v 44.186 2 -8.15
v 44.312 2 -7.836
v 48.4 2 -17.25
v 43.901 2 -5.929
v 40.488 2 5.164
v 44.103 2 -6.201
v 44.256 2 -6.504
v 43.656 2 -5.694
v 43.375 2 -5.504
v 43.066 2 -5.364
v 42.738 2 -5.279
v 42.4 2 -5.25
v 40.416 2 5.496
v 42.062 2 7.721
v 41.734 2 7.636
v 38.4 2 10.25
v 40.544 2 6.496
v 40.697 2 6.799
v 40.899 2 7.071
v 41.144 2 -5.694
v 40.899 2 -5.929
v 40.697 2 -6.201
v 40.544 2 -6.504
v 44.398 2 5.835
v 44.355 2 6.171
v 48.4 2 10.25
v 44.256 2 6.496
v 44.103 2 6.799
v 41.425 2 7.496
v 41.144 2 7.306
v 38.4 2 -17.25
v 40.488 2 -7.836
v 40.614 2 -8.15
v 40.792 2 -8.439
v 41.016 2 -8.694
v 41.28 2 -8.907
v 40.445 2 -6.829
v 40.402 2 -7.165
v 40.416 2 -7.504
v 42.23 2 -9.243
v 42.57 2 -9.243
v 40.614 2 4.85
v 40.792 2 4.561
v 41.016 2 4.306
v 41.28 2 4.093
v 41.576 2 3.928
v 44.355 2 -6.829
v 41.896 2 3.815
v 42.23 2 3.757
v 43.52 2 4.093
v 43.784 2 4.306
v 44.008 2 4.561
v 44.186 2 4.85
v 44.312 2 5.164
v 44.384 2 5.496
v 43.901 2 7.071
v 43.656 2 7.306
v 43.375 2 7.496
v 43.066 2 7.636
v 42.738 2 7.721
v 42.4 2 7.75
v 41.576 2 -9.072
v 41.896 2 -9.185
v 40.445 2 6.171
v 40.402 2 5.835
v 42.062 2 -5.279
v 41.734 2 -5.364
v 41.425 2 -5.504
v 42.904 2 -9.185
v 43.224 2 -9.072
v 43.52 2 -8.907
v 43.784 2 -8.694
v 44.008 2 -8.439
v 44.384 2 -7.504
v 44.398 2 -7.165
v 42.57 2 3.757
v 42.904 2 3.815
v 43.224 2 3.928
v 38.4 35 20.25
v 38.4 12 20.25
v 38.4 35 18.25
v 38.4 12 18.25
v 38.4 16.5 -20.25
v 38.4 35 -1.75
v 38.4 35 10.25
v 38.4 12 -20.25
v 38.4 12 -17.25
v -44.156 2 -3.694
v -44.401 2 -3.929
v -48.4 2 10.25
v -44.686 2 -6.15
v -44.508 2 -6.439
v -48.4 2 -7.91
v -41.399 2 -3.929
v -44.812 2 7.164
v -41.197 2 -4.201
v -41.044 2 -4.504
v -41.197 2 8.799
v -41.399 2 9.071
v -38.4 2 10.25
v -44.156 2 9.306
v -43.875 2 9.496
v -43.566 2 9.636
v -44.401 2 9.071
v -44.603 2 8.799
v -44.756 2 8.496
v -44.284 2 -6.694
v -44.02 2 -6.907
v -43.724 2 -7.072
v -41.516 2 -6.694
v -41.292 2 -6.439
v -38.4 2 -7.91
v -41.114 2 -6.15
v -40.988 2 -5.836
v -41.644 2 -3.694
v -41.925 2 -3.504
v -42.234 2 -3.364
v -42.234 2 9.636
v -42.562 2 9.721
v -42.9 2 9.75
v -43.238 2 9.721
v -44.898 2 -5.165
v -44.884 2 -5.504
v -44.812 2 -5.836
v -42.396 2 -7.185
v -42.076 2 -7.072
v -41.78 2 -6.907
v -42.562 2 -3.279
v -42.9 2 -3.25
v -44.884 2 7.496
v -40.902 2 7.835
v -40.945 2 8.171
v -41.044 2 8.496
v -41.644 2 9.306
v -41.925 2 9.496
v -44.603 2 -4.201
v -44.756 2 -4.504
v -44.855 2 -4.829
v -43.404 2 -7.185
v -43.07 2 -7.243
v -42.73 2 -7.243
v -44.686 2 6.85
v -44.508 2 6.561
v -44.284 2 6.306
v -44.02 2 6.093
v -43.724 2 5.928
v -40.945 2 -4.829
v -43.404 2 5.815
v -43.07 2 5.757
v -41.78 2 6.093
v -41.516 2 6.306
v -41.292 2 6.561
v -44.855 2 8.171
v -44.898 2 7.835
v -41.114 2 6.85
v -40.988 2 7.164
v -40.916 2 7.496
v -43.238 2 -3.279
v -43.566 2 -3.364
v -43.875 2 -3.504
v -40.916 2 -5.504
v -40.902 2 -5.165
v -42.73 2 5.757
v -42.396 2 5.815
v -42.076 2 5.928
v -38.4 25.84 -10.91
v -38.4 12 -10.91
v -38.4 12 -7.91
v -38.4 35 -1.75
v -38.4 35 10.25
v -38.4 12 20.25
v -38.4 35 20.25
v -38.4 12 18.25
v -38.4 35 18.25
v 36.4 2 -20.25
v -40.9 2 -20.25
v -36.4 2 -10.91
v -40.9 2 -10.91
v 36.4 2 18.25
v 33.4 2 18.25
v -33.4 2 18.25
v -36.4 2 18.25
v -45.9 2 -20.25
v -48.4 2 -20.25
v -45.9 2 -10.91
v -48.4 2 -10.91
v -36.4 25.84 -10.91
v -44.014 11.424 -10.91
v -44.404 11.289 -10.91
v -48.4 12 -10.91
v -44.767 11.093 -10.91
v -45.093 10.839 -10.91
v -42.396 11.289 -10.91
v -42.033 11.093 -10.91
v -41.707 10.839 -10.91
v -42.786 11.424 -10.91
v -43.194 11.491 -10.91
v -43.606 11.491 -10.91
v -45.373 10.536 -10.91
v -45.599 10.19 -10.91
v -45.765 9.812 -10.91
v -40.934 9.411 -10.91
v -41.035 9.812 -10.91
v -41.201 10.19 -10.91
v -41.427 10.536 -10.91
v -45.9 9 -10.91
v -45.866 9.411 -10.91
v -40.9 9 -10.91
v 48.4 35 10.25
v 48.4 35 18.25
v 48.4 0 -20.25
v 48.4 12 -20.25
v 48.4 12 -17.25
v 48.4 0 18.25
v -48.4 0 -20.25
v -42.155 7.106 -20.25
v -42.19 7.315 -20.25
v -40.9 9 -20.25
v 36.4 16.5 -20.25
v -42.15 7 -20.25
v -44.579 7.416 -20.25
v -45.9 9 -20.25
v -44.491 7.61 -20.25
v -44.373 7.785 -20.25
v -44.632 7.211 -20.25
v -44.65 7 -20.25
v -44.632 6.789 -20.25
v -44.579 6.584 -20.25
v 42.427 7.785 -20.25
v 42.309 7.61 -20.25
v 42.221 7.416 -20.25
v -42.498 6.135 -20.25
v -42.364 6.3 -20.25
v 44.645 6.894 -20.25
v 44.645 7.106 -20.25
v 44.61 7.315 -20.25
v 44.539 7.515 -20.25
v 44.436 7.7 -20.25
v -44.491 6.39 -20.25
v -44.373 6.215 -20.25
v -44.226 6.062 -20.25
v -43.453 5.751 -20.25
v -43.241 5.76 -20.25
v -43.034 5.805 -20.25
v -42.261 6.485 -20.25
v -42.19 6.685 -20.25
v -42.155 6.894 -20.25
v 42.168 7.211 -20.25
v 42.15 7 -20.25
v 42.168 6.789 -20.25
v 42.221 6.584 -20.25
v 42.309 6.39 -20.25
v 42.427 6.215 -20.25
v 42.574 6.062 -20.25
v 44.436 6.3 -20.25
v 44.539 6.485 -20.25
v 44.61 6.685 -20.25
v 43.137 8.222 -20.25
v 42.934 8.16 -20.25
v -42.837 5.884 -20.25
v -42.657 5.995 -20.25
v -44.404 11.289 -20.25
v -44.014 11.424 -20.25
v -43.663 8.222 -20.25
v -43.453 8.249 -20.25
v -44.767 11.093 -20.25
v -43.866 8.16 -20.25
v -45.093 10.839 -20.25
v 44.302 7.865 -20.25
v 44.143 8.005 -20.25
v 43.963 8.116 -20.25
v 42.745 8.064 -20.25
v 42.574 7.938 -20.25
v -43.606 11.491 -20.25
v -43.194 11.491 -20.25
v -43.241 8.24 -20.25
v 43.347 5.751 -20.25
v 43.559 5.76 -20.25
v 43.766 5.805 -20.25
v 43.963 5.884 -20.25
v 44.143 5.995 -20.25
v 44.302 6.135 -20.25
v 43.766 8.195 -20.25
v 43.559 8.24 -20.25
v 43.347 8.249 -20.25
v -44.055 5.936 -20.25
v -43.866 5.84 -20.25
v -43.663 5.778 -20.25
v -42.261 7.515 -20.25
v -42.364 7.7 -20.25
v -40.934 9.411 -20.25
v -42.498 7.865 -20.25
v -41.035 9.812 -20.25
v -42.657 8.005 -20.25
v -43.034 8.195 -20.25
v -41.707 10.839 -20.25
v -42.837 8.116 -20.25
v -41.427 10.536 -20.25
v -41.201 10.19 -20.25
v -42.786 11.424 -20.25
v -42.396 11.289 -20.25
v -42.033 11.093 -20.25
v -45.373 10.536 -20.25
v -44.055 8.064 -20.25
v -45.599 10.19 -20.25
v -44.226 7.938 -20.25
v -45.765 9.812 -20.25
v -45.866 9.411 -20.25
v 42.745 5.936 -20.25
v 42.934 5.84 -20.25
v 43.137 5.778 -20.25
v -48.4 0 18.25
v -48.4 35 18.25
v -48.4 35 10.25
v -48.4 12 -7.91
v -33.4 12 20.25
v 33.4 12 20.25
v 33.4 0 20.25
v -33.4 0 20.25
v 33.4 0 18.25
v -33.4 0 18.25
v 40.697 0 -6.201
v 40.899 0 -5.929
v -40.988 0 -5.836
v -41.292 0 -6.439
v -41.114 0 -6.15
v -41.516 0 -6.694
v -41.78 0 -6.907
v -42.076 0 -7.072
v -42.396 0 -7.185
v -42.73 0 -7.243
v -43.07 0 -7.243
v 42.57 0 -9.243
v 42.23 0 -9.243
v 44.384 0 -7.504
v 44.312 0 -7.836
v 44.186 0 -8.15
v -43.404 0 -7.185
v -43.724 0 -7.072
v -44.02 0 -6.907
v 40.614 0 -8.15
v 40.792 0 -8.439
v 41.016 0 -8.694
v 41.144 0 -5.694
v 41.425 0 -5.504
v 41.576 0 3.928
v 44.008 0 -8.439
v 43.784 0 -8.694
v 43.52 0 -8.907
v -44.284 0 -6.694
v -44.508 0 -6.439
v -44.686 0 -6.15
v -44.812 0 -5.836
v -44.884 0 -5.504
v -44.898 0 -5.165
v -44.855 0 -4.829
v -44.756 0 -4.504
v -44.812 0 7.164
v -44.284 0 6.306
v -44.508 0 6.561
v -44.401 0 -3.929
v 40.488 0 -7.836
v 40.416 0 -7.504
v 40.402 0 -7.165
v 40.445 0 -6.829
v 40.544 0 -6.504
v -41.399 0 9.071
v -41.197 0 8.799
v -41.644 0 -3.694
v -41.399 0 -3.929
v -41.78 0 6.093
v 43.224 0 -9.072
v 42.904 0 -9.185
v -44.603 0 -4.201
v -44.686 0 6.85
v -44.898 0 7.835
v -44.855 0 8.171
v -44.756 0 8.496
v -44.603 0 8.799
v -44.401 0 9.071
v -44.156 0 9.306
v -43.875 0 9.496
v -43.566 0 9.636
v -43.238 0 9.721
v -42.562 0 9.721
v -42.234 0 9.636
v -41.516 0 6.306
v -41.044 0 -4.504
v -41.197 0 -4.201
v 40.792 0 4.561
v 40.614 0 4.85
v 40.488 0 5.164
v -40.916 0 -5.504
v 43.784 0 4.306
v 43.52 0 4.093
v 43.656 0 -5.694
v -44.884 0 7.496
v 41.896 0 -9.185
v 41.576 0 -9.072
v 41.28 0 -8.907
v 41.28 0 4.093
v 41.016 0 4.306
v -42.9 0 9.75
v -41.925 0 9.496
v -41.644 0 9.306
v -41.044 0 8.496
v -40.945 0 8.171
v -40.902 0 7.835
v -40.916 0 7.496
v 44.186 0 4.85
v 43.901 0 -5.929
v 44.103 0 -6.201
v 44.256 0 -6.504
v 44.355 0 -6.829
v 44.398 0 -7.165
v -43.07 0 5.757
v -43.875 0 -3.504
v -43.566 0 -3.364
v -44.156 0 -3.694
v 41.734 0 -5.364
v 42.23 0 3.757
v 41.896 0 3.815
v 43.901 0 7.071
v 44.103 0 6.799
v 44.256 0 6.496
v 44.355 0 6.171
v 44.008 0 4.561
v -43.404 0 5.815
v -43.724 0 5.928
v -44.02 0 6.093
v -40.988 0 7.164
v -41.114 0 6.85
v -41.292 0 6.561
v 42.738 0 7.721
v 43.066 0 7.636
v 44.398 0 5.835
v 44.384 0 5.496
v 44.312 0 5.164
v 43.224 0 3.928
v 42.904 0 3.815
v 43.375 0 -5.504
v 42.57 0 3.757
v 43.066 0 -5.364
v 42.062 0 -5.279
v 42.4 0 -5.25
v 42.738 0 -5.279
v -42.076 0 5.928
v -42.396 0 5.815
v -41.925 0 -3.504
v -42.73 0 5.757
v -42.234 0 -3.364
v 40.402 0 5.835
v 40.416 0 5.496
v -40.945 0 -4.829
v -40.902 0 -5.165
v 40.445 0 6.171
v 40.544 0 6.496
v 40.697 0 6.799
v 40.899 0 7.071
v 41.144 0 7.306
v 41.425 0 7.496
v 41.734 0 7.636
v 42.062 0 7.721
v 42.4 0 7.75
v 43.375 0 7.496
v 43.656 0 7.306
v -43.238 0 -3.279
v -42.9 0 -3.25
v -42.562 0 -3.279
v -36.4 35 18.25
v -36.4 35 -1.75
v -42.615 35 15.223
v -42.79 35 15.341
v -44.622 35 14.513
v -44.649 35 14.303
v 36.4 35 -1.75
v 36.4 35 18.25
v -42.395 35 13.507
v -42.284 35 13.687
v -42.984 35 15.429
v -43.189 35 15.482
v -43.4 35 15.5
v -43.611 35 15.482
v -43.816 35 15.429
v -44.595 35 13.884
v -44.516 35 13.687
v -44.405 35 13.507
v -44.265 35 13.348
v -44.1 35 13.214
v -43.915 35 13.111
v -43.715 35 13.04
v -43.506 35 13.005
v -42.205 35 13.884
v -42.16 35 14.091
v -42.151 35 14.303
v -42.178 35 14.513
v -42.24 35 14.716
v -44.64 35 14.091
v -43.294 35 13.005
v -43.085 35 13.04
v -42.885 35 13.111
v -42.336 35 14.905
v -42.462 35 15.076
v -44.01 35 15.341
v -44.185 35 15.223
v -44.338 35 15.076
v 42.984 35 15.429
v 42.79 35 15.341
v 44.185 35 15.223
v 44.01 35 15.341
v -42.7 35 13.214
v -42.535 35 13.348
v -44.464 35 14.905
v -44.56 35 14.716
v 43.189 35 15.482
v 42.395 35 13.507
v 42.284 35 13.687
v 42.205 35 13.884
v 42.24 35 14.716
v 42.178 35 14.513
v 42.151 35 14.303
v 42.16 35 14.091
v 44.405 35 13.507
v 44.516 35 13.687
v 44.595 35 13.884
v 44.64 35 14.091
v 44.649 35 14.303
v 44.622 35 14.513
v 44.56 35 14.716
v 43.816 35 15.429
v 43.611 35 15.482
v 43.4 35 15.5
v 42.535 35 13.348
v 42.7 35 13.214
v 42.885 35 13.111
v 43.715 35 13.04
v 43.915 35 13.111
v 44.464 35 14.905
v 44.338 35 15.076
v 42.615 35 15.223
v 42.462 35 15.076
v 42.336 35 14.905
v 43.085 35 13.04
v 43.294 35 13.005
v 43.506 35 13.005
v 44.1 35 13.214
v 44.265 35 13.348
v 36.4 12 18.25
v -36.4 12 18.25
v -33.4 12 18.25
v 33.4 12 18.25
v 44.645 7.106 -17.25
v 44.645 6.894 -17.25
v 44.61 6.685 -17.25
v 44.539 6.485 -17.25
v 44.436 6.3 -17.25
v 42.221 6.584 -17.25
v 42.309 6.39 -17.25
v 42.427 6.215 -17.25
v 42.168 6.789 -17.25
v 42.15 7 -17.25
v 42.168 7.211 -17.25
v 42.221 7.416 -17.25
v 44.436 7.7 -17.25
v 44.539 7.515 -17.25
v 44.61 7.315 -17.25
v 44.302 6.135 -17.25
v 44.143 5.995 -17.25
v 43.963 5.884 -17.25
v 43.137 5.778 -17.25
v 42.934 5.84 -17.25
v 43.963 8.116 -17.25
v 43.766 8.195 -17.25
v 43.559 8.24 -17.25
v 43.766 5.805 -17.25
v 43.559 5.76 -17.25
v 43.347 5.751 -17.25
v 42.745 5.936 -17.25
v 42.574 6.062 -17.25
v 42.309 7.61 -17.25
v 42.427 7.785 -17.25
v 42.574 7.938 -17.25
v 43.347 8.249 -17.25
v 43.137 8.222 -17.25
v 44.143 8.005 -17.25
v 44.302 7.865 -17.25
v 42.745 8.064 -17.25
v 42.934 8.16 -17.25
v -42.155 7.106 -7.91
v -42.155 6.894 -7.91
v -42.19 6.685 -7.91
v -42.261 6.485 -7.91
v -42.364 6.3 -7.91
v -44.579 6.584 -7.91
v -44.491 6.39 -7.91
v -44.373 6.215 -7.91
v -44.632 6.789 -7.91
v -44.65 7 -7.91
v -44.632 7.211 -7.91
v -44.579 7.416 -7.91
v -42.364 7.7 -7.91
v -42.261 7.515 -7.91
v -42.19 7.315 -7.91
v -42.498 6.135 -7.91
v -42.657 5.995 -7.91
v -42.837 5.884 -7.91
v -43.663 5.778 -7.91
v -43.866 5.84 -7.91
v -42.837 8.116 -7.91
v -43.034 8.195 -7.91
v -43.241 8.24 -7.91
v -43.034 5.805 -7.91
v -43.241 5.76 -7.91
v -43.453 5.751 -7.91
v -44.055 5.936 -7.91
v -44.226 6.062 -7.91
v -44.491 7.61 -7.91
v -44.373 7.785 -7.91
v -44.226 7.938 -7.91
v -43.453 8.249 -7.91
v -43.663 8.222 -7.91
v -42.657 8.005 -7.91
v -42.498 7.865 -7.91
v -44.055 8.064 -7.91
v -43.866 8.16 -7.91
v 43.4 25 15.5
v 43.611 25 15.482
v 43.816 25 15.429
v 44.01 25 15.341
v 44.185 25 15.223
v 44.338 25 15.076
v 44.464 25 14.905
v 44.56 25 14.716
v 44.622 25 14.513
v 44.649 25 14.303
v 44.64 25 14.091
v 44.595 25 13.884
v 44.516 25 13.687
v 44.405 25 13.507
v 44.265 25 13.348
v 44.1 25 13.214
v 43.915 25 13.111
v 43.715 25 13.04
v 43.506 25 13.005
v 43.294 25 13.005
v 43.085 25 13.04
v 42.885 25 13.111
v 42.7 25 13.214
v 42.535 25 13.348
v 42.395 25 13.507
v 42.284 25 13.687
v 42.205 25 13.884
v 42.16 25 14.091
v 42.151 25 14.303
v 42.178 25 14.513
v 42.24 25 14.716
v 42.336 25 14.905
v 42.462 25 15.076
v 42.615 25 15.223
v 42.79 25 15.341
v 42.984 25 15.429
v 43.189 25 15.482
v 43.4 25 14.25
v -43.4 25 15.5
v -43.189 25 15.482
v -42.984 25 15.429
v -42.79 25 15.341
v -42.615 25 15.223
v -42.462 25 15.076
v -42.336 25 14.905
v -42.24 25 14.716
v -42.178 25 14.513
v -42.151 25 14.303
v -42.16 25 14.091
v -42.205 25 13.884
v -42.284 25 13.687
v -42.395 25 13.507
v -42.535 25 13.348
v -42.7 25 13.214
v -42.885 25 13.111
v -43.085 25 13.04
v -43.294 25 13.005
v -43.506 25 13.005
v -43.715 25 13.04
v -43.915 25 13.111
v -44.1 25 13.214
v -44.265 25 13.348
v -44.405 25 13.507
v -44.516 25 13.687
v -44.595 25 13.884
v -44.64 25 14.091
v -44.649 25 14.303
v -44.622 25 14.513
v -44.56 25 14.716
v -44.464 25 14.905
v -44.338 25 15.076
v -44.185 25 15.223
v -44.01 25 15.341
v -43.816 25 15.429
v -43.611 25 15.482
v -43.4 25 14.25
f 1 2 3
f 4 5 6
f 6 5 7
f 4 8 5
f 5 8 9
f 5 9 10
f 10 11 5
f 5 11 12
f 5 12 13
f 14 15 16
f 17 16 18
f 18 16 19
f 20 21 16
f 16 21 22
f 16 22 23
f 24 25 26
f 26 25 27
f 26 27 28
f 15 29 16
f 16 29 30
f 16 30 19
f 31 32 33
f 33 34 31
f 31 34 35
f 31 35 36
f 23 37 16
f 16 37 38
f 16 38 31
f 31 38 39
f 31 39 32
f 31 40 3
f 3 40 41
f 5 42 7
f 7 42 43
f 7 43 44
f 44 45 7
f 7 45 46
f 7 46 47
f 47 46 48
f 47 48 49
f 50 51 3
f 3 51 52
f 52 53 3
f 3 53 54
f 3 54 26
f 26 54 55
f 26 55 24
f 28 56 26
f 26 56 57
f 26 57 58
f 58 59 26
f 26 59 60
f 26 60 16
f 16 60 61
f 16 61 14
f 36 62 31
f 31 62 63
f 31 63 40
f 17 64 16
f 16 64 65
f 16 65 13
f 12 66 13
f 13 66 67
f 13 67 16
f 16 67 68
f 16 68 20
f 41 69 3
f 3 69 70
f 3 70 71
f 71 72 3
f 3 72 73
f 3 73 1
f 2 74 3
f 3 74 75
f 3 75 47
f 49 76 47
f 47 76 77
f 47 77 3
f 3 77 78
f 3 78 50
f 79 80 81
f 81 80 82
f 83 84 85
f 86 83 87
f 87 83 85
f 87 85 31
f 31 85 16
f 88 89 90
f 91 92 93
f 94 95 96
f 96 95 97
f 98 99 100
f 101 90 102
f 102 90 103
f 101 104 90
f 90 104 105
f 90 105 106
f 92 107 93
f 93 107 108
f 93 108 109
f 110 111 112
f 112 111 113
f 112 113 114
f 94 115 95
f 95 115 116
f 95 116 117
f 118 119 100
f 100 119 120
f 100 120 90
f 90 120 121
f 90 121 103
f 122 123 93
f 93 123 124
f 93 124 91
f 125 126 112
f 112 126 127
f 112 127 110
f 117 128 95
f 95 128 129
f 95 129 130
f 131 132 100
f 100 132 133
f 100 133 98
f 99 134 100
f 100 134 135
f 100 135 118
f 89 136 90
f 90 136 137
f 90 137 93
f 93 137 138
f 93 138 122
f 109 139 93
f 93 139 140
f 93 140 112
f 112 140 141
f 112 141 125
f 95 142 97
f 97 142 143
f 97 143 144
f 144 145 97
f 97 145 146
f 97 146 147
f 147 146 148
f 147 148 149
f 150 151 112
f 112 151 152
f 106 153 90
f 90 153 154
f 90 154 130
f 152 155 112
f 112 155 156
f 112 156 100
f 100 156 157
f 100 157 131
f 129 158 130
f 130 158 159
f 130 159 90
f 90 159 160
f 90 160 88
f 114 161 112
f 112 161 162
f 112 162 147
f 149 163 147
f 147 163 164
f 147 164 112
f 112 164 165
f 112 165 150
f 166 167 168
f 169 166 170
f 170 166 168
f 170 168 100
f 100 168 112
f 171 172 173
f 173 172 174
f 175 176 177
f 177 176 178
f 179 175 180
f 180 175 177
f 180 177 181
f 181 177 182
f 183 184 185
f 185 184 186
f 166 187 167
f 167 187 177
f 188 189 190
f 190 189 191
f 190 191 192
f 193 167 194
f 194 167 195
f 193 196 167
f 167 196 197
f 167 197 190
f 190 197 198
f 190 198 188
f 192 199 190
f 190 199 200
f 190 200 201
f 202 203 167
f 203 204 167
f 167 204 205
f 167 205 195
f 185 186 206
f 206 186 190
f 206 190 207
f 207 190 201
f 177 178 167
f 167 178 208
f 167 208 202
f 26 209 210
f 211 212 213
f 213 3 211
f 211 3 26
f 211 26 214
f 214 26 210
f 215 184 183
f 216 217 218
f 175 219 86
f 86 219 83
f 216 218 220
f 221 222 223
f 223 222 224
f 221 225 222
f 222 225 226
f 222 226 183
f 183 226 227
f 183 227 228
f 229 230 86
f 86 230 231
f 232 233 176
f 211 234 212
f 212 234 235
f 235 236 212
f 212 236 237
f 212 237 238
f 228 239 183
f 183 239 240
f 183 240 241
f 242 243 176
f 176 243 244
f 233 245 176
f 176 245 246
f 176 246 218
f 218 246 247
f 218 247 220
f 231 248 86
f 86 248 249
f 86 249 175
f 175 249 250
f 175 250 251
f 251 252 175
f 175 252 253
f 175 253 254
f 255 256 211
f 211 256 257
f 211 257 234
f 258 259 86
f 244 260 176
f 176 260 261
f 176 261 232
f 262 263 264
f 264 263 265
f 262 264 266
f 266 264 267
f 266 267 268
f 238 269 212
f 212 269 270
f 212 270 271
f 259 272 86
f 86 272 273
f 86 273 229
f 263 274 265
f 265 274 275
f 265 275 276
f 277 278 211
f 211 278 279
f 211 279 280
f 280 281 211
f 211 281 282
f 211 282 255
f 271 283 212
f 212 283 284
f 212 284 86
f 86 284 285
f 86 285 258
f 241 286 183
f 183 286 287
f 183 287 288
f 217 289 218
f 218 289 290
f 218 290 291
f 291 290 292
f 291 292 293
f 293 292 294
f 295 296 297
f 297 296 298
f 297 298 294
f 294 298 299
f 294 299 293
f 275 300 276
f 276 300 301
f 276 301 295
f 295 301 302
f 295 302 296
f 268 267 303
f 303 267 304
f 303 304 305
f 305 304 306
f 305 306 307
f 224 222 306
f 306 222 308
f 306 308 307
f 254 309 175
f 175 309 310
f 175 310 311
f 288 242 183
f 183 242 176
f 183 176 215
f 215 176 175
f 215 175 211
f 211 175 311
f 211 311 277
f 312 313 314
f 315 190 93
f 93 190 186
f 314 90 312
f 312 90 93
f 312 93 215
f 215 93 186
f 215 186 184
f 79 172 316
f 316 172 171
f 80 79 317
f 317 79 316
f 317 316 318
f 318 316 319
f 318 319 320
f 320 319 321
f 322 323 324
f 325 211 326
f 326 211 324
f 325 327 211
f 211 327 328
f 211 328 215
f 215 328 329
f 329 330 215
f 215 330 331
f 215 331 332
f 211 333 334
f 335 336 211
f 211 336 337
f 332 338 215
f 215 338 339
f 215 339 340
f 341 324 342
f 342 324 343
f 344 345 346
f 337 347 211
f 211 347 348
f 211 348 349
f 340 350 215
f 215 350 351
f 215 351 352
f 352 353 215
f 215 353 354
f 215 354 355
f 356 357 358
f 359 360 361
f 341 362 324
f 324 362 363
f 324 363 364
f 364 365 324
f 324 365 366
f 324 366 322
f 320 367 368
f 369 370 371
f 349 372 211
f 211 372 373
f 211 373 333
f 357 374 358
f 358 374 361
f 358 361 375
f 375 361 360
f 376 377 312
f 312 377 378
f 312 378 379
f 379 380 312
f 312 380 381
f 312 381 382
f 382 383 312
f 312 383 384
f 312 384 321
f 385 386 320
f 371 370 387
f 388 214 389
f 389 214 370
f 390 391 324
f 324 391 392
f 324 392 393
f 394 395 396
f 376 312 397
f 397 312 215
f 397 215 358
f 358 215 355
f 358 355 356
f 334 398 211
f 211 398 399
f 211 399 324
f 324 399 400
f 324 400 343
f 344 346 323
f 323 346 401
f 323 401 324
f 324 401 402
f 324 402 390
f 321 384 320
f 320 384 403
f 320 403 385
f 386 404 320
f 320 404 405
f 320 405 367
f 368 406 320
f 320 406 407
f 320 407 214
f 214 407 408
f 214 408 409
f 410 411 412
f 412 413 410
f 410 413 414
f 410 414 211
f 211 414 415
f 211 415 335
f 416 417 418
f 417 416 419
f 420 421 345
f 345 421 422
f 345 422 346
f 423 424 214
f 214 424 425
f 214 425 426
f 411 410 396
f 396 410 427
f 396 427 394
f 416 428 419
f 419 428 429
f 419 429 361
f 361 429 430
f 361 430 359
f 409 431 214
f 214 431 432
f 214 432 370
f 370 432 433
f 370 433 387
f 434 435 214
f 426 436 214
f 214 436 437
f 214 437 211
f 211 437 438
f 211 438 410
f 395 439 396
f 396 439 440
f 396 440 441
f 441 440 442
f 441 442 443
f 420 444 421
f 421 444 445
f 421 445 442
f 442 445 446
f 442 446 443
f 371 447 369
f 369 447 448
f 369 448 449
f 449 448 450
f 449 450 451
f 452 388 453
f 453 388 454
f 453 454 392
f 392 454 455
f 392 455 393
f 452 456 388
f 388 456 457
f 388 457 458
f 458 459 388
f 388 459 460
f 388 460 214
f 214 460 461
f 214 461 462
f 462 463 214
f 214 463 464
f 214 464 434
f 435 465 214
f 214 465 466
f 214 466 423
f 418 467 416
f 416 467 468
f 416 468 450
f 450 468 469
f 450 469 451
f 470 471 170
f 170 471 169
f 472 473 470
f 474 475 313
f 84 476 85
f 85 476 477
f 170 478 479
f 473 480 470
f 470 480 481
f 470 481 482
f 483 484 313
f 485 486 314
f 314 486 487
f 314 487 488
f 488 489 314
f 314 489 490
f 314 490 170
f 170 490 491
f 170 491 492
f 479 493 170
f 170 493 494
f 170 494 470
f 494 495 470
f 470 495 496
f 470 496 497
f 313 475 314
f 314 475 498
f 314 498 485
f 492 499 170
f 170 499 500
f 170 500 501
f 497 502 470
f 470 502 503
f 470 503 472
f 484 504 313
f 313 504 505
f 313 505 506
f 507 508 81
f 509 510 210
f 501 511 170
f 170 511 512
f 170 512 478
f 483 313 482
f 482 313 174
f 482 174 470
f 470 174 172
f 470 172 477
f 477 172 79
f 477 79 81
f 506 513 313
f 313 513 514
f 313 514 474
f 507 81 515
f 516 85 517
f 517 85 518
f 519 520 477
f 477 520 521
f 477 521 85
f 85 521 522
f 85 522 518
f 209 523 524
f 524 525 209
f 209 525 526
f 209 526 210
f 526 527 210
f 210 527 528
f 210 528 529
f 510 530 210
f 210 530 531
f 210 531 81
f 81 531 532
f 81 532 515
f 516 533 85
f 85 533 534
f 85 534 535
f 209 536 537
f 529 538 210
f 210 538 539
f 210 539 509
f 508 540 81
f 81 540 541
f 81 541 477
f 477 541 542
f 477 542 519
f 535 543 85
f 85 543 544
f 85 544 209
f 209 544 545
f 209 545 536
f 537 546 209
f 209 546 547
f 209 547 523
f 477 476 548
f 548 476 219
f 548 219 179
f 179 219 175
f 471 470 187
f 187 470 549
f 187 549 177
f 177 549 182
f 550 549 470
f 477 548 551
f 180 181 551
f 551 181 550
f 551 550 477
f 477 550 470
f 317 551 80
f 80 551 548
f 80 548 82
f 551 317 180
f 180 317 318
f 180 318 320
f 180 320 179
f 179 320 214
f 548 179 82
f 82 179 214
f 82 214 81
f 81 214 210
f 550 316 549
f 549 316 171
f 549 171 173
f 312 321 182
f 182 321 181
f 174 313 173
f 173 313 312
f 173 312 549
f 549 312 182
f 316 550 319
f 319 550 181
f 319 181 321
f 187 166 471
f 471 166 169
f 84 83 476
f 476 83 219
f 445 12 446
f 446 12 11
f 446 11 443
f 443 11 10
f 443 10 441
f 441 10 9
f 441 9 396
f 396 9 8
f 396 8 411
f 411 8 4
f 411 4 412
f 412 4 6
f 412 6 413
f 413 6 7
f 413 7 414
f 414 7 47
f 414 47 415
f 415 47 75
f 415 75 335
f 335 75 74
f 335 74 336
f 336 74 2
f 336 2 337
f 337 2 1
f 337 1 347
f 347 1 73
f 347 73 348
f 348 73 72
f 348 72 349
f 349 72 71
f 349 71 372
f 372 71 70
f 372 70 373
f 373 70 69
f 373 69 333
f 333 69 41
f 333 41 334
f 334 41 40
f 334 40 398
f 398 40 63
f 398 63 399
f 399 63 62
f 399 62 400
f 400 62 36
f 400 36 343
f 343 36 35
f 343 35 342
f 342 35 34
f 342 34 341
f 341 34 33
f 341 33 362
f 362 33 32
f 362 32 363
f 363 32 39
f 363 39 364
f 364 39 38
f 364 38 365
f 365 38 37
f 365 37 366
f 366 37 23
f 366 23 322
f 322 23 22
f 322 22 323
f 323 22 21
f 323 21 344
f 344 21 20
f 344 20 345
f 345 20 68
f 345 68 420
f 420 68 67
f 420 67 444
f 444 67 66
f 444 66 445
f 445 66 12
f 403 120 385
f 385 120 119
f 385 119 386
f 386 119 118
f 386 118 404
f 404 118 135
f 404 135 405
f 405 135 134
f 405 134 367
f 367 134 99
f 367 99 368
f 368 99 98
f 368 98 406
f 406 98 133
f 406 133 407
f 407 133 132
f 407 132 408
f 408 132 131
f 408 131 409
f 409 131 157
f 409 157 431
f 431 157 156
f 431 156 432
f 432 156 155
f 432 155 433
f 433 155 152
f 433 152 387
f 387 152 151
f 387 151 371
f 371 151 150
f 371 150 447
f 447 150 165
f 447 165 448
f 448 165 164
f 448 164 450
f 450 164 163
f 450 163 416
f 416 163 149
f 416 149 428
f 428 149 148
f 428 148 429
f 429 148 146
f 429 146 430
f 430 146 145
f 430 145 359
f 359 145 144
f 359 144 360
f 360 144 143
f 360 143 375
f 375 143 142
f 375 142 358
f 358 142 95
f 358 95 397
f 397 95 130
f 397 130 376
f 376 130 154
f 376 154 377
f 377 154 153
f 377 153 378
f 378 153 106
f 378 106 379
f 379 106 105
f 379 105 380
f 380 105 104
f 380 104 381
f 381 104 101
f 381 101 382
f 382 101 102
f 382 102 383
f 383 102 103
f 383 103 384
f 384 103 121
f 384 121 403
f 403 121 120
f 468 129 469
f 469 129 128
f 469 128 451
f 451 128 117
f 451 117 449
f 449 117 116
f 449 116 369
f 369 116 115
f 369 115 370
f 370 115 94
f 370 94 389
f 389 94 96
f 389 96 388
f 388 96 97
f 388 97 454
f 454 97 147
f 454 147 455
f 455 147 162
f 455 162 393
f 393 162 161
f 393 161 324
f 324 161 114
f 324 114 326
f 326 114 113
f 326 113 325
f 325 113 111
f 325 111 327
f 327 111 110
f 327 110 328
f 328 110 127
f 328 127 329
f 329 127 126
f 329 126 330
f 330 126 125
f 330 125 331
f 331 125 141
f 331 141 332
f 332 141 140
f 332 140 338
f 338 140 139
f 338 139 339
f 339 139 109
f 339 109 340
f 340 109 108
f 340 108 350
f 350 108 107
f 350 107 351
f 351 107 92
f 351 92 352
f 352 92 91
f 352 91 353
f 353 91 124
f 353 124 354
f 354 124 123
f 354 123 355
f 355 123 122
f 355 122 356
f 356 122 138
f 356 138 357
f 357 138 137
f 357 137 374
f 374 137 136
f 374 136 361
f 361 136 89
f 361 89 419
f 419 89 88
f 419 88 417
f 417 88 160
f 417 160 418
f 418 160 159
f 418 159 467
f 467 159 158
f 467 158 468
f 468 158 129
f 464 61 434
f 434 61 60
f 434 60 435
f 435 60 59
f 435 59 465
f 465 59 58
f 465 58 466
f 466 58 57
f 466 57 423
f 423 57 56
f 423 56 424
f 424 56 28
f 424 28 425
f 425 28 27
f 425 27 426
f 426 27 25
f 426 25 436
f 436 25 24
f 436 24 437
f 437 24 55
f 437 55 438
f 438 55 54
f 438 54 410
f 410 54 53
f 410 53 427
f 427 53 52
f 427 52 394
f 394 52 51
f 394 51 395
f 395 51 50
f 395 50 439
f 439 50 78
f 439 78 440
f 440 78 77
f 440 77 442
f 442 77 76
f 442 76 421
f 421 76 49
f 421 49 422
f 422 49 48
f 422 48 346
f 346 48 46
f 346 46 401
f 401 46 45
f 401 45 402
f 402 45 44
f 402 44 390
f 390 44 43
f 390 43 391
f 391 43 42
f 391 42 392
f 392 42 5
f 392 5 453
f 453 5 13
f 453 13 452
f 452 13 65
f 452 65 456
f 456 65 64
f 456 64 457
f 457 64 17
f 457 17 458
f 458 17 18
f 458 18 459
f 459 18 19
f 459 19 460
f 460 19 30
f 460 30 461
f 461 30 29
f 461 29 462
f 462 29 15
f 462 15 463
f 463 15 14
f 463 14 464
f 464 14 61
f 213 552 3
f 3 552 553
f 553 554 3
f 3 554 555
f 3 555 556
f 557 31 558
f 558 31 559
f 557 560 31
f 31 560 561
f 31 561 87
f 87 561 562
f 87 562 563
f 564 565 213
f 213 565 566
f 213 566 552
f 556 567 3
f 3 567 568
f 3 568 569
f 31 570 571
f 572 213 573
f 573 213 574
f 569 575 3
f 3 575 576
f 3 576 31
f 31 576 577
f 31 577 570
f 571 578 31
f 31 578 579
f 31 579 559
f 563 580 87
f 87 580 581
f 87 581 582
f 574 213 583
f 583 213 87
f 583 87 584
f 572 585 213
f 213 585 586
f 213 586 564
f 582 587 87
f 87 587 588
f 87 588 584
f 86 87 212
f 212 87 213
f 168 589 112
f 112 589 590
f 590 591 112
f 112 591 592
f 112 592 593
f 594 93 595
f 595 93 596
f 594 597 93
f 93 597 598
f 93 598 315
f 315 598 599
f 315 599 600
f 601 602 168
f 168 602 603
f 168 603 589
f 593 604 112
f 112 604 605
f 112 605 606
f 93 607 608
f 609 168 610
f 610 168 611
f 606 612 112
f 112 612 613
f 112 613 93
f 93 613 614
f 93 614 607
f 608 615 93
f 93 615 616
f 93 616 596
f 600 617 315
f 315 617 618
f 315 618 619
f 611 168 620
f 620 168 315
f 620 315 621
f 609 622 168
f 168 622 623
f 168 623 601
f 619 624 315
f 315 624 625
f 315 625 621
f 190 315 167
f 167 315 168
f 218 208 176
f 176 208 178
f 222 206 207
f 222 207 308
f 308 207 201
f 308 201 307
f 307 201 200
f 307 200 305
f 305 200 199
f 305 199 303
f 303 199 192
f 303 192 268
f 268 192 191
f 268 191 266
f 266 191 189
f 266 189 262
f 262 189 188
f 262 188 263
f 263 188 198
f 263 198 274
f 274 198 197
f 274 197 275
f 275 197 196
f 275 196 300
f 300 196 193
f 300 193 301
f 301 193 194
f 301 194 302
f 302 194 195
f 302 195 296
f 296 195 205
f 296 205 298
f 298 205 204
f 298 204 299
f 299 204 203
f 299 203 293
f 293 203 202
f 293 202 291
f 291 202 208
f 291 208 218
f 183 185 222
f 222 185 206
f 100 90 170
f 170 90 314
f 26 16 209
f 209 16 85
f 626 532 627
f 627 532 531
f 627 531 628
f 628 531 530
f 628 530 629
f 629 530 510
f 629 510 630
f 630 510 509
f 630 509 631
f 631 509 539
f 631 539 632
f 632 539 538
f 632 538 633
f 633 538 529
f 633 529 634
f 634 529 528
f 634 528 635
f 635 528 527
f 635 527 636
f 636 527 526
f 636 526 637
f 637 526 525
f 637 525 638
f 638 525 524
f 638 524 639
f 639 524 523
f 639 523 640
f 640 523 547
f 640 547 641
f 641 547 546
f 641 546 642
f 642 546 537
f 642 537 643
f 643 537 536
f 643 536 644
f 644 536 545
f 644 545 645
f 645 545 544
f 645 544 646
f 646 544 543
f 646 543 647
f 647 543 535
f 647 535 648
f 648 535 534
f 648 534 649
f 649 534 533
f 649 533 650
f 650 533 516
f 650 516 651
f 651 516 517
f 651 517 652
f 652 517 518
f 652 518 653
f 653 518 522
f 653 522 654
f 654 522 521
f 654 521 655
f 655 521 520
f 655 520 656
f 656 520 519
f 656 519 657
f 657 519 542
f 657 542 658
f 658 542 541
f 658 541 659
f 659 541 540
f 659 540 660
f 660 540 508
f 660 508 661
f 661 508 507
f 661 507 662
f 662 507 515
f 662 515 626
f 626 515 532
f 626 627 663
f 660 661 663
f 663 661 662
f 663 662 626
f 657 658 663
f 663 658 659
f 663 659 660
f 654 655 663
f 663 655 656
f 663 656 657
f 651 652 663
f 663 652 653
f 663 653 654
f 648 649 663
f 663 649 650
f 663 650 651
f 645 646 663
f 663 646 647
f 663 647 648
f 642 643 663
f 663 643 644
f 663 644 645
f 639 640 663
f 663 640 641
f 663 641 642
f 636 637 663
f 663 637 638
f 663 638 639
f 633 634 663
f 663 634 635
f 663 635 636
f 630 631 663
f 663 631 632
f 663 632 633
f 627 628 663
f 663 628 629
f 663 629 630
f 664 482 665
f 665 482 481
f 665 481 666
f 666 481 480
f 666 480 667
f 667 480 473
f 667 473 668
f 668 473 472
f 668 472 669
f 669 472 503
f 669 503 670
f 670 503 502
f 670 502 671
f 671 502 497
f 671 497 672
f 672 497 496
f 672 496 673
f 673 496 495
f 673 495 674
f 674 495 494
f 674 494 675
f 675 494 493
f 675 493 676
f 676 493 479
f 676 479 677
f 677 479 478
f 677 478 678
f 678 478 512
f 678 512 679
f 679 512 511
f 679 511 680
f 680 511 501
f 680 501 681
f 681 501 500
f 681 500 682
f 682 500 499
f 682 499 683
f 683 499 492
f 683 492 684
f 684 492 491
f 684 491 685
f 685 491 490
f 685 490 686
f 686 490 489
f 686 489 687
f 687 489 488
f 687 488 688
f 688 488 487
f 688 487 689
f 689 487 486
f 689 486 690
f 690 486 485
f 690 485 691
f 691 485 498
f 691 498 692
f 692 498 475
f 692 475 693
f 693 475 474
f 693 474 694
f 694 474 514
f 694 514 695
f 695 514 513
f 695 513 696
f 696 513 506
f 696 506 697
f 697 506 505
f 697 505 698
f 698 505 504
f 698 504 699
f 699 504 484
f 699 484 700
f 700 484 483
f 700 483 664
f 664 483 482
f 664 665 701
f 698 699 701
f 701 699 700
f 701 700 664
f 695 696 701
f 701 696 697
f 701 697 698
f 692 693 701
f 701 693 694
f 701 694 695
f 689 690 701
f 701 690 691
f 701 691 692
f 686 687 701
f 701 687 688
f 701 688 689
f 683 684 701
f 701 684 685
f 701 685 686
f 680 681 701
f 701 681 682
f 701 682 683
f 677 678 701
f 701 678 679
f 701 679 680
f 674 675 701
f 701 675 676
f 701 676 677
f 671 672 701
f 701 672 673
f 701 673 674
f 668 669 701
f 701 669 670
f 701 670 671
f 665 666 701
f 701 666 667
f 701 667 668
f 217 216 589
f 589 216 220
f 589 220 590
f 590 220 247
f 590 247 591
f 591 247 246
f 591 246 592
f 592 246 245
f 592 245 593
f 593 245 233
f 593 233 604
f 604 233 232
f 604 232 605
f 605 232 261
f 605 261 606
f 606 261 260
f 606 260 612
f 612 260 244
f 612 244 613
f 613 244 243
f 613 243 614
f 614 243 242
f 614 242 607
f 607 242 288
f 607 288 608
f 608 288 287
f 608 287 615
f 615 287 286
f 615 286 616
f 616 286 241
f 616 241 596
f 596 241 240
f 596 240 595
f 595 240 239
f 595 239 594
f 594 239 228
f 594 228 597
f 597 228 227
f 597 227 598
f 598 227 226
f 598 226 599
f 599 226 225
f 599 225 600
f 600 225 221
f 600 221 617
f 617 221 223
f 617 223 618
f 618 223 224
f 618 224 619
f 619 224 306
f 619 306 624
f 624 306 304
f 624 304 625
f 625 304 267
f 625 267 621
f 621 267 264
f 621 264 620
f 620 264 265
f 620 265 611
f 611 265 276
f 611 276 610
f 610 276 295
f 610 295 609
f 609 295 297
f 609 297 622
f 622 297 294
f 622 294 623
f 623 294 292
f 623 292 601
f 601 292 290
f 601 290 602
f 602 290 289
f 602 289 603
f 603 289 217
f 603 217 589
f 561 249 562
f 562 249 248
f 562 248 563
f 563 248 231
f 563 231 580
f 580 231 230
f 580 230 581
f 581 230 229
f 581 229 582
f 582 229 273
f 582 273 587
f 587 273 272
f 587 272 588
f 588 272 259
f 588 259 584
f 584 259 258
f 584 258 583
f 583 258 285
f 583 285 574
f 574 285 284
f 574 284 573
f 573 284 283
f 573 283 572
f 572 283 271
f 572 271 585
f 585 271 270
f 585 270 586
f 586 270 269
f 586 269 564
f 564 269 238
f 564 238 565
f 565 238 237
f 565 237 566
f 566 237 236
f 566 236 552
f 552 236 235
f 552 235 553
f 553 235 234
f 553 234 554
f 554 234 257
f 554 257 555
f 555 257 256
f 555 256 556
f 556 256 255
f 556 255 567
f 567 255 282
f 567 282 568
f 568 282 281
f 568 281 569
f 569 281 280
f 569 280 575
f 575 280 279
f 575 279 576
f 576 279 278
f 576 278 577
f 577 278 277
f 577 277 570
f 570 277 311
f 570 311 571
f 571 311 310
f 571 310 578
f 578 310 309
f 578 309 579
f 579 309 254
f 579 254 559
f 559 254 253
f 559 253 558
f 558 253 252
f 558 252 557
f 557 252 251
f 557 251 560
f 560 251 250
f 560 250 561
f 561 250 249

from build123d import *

# Parameters (mm, degrees)
CROQUIS1_W              = 96.8
CROQUIS1_H              = 40.5
SALIENTE_EXTRUIR1_DEPTH = 2
CROQUIS4_W              = 76.8
CROQUIS4_H              = 40.5
CROQUIS4_W_2            = 72.8
CROQUIS4_H_2            = 36.5
SALIENTE_EXTRUIR6_DEPTH = 33
CORTAR_EXTRUIR2_START   = 10
CROQUIS2_W              = 15
CROQUIS2_H              = 2
CORTAR_EXTRUIR2_DEPTH   = 12
CORTAR_EXTRUIR4_DEPTH   = 33
CORTAR_EXTRUIR5_DEPTH   = 96.756474977
CROQUIS7_R              = 2
CORTAR_EXTRUIR6_DEPTH   = 12
CROQUIS8_W              = 10
CROQUIS8_H              = 3
SALIENTE_EXTRUIR7_DEPTH = 10
SALIENTE_EXTRUIR9_DEPTH = 9.340280327
CROQUIS9_W              = 10
CROQUIS9_H              = 8
SALIENTE_EXTRUIR8_DEPTH = 33
CROQUIS10_R             = 1.25
CORTAR_EXTRUIR7_DEPTH   = 10
CORTAR_EXTRUIR8_REACH   = 74.165
CROQUIS11_R             = 1.25


with BuildPart() as part:
    # Croquis1 → Saliente-Extruir1 (new body)
    with BuildSketch(Plane(origin=(0, 0, 0), x_dir=(1, 0, 0), z_dir=(0, 1, 0))):
        Rectangle(CROQUIS1_W, CROQUIS1_H)
    extrude(amount=SALIENTE_EXTRUIR1_DEPTH)

    # Croquis4 → Saliente-Extruir6 (add)
    with BuildSketch(Plane(origin=(0, 2, 0), x_dir=(1, 0, 0), z_dir=(0, 1, 0))):
        Rectangle(CROQUIS4_W, CROQUIS4_H)
        Rectangle(CROQUIS4_W_2, CROQUIS4_H_2, mode=Mode.SUBTRACT)
    extrude(amount=SALIENTE_EXTRUIR6_DEPTH)

    # Croquis2 → Cortar-Extruir2 (cut)
    with BuildSketch(Plane(origin=(0, 2, 0), x_dir=(1, 0, 0), z_dir=(0, 1, 0)).offset(CORTAR_EXTRUIR2_START)):
        with Locations((-40.9, -19.25)):
            Rectangle(CROQUIS2_W, CROQUIS2_H)
        with Locations((40.9, -19.25)):
            Rectangle(CROQUIS2_W, CROQUIS2_H)
    extrude(amount=-CORTAR_EXTRUIR2_DEPTH, mode=Mode.SUBTRACT)

    # Croquis6 → Cortar-Extruir4 (cut)
    with BuildSketch(Plane(origin=(0, 35, 0), x_dir=(1, 0, 0), z_dir=(0, 1, 0))):
        Polygon((36.4, 18.25), (-36.4, 18.25), (-36.4, 10.909719673), (-38.4, 10.909719673), (-38.4, 20.25), (36.4, 20.25), align=None)
    extrude(amount=-CORTAR_EXTRUIR4_DEPTH, mode=Mode.SUBTRACT)

    # Croquis5 → Cortar-Extruir5 (cut, through all)
    with BuildSketch(Plane(origin=(38.4, 0, 0), x_dir=(0, 0, -1), z_dir=(1, 0, 0))):
        Polygon((1.75, 35), (20.25, 16.5), (20.25, 35), align=None)
    extrude(amount=-CORTAR_EXTRUIR5_DEPTH, mode=Mode.SUBTRACT)

    # Croquis7 → Cortar-Extruir6 (cut)
    with BuildSketch(Plane(origin=(0, 2, 0), x_dir=(1, 0, 0), z_dir=(0, 1, 0))):
        with Locations(Location((42.4, 7.25, 0), (0, 0, 270))):
            Circle(CROQUIS7_R)
        with Locations(Location((42.4, -5.75, 0), (0, 0, 270))):
            Circle(CROQUIS7_R)
        with Locations(Location((-42.9, 5.25, 0), (0, 0, 270))):
            Circle(CROQUIS7_R)
        with Locations(Location((-42.9, -7.75, 0), (0, 0, 270))):
            Circle(CROQUIS7_R)
    extrude(amount=-CORTAR_EXTRUIR6_DEPTH, mode=Mode.SUBTRACT)

    # Croquis8 → Saliente-Extruir7 (add)
    with BuildSketch(Plane(origin=(0, 2, 0), x_dir=(1, 0, 0), z_dir=(0, 1, 0))):
        with Locations((43.4, 18.75)):
            Rectangle(CROQUIS8_W, CROQUIS8_H)
        with Locations((-43.4, 9.409719673)):
            Rectangle(CROQUIS8_W, CROQUIS8_H)
    extrude(amount=SALIENTE_EXTRUIR7_DEPTH)

    # Croquis13 → Saliente-Extruir9 (add)
    with BuildSketch(Plane(origin=(0, 0, -10.909719673), x_dir=(-1, 0, 0), z_dir=(0, 0, -1))):
        with BuildLine():
            Line((45.9, 2), (40.9, 2))
            Line((40.9, 2), (40.9, 9))
            ThreePointArc((40.9, 9), (43.4, 11.5), (45.9, 9))
            Line((45.9, 9), (45.9, 2))
        make_face()
    extrude(amount=SALIENTE_EXTRUIR9_DEPTH)

    # Croquis9 → Saliente-Extruir8 (add)
    with BuildSketch(Plane(origin=(0, 2, 0), x_dir=(1, 0, 0), z_dir=(0, 1, 0))):
        with Locations((-43.4, -14.25)):
            Rectangle(CROQUIS9_W, CROQUIS9_H)
        with Locations((43.4, -14.25)):
            Rectangle(CROQUIS9_W, CROQUIS9_H)
    extrude(amount=SALIENTE_EXTRUIR8_DEPTH)

    # Croquis10 → Cortar-Extruir7 (cut)
    with BuildSketch(Plane(origin=(0, 35, 0), x_dir=(1, 0, 0), z_dir=(0, 1, 0))):
        with Locations(Location((-43.4, -14.25, 0), (0, 0, 270))):
            Circle(CROQUIS10_R)
        with Locations(Location((43.4, -14.25, 0), (0, 0, 270))):
            Circle(CROQUIS10_R)
    extrude(amount=-CORTAR_EXTRUIR7_DEPTH, mode=Mode.SUBTRACT)

    # Cortar-Extruir8: up to this face of the body (flat: up to its plane)
    cortar_extruir8_end = Plane(part.part.faces().sort_by_distance((-43.4, 7, -7.909719673))[0])
    # Croquis11 → Cortar-Extruir8 (cut, up to the picked face)
    with BuildSketch(Plane(origin=(0, 0, -20.25), x_dir=(-1, 0, 0), z_dir=(0, 0, -1)), mode=Mode.PRIVATE) as cortar_extruir8_sk1:
        with Locations((-43.4, 7)):
            Circle(CROQUIS11_R)
    cortar_extruir8_tool1 = split(extrude(cortar_extruir8_sk1.sketch, amount=-CORTAR_EXTRUIR8_REACH, mode=Mode.PRIVATE), bisect_by=cortar_extruir8_end, keep=Keep.BOTH, mode=Mode.PRIVATE)
    # Croquis11 → Cortar-Extruir8 (cut, up to the picked face)
    with BuildSketch(Plane(origin=(0, 0, -20.25), x_dir=(-1, 0, 0), z_dir=(0, 0, -1)), mode=Mode.PRIVATE) as cortar_extruir8_sk2:
        with Locations((43.4, 7)):
            Circle(CROQUIS11_R)
    cortar_extruir8_tool2 = split(extrude(cortar_extruir8_sk2.sketch, amount=-CORTAR_EXTRUIR8_REACH, mode=Mode.PRIVATE), bisect_by=cortar_extruir8_end, keep=Keep.BOTH, mode=Mode.PRIVATE)
    add(cortar_extruir8_tool1.solids().sort_by(Axis((43.4, 7, -20.25), (0, 0, 1)))[0], mode=Mode.SUBTRACT)
    add(cortar_extruir8_tool2.solids().sort_by(Axis((-43.4, 7, -20.25), (0, 0, 1)))[0], mode=Mode.SUBTRACT)


solid = part.part
